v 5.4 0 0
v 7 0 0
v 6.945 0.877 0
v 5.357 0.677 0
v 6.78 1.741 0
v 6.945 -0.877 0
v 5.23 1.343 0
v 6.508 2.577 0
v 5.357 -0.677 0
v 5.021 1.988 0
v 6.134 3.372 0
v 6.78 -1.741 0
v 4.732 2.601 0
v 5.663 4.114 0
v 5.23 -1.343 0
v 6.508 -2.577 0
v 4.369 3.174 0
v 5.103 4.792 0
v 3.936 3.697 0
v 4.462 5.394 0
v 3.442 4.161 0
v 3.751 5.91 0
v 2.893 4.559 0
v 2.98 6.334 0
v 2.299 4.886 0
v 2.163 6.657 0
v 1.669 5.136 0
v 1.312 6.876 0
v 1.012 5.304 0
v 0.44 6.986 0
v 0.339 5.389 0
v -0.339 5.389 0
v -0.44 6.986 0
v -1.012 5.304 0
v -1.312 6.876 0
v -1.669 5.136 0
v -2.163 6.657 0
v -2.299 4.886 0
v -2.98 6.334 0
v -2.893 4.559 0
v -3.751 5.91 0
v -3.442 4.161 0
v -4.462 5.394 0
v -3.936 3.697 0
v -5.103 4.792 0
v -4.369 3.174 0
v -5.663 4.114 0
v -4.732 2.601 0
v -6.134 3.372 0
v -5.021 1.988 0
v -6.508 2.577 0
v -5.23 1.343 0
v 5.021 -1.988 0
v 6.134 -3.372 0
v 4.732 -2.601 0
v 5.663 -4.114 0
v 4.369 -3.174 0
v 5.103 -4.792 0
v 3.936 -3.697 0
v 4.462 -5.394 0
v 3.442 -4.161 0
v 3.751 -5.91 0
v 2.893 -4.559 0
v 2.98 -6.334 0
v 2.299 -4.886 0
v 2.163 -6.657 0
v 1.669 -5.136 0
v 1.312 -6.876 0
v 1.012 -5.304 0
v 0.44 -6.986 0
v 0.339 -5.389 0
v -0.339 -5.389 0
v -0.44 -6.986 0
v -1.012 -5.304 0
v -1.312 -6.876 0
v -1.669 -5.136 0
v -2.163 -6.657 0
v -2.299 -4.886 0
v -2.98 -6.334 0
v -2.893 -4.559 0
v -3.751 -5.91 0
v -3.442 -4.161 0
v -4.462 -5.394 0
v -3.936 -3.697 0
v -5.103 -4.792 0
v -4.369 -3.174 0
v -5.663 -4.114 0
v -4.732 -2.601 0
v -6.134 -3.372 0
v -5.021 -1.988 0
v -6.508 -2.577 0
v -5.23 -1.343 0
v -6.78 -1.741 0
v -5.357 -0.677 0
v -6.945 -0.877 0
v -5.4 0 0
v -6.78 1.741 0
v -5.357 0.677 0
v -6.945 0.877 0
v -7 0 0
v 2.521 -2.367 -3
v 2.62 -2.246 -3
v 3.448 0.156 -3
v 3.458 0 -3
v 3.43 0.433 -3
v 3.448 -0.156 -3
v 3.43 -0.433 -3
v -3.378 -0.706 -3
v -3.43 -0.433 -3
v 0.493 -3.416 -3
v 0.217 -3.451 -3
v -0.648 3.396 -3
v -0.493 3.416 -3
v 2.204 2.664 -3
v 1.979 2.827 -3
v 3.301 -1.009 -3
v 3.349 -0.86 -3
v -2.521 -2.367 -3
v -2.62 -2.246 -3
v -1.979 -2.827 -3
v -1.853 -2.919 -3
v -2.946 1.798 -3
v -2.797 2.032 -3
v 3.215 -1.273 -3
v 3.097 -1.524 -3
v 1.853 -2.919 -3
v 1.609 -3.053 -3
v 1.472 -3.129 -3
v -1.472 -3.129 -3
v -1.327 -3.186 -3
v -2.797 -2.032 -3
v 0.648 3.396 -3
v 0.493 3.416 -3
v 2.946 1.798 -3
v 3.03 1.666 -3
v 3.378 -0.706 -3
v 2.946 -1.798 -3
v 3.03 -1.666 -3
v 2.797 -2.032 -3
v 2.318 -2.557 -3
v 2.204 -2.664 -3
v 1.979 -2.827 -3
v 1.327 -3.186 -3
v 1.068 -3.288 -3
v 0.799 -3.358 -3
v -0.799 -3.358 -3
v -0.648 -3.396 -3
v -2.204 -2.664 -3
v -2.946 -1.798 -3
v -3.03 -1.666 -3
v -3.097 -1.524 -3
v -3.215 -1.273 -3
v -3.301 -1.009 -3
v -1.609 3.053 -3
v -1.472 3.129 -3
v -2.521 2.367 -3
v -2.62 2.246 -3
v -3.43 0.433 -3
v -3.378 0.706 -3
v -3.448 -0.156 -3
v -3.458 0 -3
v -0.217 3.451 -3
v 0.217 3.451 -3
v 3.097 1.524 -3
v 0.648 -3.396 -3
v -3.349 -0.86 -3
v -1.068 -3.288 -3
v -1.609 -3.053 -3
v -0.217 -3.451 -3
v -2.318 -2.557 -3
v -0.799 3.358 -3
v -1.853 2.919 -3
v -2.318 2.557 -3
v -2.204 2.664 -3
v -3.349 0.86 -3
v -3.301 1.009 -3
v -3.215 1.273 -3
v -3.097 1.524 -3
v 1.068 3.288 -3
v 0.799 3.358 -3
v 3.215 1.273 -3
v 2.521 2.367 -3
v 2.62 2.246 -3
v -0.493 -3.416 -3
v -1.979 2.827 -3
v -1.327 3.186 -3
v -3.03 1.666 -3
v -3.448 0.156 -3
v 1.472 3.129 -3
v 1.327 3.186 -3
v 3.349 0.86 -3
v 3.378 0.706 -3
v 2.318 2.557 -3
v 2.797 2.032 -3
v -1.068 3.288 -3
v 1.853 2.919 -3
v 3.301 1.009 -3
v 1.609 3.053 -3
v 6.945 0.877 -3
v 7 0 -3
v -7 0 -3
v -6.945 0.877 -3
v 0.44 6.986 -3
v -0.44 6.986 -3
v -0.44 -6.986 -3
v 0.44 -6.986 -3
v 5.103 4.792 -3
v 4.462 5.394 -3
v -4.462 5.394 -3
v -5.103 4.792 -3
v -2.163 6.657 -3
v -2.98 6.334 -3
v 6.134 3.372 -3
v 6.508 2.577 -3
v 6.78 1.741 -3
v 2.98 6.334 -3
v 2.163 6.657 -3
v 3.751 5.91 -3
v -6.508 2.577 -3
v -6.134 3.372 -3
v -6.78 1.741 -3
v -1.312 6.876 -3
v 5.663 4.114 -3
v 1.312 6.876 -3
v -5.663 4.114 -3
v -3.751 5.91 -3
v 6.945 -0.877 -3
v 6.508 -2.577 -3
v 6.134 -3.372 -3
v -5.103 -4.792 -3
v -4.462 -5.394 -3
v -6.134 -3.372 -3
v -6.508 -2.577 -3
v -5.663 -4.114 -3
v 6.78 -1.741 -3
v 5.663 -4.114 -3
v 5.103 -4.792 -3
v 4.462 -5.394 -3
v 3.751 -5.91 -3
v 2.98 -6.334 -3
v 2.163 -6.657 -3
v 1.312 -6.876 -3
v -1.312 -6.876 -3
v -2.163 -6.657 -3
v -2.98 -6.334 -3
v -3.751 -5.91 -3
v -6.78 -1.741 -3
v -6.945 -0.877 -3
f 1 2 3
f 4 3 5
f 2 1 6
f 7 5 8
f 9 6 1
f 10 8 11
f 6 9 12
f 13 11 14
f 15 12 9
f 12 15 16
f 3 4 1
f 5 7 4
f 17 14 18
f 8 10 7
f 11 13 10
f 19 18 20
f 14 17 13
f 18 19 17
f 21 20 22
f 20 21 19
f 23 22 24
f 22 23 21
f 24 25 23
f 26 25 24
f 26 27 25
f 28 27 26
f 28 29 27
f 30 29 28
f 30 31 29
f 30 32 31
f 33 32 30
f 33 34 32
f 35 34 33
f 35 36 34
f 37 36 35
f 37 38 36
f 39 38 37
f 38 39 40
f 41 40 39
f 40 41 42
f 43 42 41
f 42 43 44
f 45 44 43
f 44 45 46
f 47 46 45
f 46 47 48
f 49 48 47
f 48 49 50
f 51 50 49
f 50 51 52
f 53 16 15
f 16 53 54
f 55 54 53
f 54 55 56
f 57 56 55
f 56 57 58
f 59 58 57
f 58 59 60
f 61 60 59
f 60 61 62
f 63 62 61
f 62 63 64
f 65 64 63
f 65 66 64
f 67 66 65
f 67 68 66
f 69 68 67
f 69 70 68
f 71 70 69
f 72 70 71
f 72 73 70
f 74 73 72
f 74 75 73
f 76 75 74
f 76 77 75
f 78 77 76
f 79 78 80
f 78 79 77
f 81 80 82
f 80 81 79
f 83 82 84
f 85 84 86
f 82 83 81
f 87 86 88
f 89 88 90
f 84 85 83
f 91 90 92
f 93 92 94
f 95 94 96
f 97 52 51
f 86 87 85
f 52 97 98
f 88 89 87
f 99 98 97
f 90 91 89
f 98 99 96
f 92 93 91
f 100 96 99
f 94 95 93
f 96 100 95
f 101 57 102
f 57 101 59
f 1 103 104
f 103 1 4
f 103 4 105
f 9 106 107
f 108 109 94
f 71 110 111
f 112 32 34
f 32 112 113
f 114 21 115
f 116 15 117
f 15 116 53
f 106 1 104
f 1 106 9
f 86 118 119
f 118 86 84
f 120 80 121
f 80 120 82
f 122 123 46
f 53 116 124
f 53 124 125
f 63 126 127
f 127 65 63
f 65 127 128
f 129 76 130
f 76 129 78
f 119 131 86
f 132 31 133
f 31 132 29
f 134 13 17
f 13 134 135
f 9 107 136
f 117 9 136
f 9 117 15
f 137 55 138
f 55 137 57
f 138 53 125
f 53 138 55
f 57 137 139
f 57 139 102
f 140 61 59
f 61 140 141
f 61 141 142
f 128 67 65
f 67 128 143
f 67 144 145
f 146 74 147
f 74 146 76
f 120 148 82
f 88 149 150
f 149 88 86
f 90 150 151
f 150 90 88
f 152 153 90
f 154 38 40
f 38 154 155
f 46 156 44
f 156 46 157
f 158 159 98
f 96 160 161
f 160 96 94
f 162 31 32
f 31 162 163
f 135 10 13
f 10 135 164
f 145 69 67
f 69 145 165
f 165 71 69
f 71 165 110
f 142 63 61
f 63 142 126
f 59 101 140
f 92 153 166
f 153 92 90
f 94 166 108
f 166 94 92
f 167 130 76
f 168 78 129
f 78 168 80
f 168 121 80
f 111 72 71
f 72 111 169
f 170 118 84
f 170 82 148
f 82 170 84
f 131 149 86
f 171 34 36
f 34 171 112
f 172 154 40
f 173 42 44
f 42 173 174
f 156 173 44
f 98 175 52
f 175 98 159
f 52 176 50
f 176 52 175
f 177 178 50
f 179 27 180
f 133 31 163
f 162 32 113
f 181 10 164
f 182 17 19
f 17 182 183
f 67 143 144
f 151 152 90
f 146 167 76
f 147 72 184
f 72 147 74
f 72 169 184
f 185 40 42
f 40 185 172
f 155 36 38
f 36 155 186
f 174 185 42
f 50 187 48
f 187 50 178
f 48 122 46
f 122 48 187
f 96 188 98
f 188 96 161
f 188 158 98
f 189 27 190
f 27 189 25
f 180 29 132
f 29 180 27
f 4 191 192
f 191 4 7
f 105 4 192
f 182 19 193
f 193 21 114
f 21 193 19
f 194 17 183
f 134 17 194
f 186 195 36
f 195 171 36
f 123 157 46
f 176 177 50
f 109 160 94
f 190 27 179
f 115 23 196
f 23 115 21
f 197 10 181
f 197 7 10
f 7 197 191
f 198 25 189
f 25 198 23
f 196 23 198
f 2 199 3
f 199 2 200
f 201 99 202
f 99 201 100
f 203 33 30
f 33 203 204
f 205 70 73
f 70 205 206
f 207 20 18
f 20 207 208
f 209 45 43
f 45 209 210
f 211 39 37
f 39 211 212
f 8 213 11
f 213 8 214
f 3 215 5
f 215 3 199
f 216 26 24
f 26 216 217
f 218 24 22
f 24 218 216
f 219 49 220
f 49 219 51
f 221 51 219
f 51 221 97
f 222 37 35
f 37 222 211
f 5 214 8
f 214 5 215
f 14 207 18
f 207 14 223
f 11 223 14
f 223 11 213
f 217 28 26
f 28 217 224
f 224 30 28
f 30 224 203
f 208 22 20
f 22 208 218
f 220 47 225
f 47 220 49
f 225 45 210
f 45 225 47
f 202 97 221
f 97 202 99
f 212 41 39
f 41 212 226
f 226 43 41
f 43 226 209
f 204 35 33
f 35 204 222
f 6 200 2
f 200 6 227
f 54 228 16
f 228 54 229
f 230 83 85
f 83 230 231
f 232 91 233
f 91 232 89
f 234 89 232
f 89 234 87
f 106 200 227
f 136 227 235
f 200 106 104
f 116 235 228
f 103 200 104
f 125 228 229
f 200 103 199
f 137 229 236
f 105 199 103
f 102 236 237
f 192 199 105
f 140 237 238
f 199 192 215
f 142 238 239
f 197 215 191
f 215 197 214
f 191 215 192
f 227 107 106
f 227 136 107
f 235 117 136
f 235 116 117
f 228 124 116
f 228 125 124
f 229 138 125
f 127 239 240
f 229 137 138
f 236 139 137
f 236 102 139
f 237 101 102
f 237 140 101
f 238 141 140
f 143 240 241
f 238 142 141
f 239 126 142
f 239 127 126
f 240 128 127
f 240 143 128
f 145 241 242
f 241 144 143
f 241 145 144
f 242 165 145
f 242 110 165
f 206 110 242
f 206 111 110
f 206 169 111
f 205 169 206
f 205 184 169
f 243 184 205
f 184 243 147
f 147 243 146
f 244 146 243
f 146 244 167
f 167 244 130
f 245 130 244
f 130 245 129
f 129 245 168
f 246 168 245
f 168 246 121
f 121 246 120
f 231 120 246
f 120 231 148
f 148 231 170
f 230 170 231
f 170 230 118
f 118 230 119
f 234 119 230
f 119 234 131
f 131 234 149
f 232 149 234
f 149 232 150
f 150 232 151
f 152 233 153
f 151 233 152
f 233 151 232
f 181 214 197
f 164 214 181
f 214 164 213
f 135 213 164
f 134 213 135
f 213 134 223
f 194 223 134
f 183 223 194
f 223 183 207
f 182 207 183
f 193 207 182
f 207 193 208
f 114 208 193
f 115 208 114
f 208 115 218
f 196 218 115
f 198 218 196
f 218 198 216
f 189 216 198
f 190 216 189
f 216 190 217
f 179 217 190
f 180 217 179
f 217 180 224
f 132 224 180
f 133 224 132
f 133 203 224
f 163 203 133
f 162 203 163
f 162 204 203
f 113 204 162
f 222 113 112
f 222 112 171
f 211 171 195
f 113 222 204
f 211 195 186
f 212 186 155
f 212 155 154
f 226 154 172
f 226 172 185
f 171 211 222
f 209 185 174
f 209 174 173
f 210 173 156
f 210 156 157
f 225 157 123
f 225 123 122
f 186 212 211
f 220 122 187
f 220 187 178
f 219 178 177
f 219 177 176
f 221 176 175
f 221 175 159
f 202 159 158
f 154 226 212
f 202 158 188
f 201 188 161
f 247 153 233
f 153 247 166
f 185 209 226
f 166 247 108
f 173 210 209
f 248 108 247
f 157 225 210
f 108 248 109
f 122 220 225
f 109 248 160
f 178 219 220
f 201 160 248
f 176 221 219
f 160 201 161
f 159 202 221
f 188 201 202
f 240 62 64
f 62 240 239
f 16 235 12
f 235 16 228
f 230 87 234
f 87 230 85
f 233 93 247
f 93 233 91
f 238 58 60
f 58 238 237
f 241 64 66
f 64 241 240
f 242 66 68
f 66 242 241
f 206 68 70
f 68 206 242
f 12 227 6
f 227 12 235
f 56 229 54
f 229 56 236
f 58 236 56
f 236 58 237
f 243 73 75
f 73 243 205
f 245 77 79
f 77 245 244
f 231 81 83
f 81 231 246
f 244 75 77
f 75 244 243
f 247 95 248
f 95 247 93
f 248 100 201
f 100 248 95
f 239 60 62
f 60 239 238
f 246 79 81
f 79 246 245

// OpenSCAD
$fn = 50;


difference() {
	union() {
		translate(v = [0, 0, -3.0000000000]) {
			cylinder(h = 3, r = 7.0000000000);
		}
		cylinder(h = 0, r = 13.0000000000);
	}
	union() {
		translate(v = [0, 0, 0]) {
			rotate(a = [0, 0, 0]) {
				difference() {
					union() {
						#translate(v = [0, 0, -3.0000000000]) {
							cylinder(h = 3, r = 2.6000000000);
						}
						#translate(v = [0, 0, -3.9000000000]) {
							cylinder(h = 3.9000000000, r = 7.0000000000, r1 = 2.8750000000, r2 = 5.4000000000);
						}
						#translate(v = [0, 0, -3.0000000000]) {
							cylinder(h = 3, r = 2.8750000000);
						}
						#translate(v = [0, 0, -3.0000000000]) {
							cylinder(h = 3, r = 2.6000000000);
						}
					}
					union();
				}
			}
		}
	}
}
